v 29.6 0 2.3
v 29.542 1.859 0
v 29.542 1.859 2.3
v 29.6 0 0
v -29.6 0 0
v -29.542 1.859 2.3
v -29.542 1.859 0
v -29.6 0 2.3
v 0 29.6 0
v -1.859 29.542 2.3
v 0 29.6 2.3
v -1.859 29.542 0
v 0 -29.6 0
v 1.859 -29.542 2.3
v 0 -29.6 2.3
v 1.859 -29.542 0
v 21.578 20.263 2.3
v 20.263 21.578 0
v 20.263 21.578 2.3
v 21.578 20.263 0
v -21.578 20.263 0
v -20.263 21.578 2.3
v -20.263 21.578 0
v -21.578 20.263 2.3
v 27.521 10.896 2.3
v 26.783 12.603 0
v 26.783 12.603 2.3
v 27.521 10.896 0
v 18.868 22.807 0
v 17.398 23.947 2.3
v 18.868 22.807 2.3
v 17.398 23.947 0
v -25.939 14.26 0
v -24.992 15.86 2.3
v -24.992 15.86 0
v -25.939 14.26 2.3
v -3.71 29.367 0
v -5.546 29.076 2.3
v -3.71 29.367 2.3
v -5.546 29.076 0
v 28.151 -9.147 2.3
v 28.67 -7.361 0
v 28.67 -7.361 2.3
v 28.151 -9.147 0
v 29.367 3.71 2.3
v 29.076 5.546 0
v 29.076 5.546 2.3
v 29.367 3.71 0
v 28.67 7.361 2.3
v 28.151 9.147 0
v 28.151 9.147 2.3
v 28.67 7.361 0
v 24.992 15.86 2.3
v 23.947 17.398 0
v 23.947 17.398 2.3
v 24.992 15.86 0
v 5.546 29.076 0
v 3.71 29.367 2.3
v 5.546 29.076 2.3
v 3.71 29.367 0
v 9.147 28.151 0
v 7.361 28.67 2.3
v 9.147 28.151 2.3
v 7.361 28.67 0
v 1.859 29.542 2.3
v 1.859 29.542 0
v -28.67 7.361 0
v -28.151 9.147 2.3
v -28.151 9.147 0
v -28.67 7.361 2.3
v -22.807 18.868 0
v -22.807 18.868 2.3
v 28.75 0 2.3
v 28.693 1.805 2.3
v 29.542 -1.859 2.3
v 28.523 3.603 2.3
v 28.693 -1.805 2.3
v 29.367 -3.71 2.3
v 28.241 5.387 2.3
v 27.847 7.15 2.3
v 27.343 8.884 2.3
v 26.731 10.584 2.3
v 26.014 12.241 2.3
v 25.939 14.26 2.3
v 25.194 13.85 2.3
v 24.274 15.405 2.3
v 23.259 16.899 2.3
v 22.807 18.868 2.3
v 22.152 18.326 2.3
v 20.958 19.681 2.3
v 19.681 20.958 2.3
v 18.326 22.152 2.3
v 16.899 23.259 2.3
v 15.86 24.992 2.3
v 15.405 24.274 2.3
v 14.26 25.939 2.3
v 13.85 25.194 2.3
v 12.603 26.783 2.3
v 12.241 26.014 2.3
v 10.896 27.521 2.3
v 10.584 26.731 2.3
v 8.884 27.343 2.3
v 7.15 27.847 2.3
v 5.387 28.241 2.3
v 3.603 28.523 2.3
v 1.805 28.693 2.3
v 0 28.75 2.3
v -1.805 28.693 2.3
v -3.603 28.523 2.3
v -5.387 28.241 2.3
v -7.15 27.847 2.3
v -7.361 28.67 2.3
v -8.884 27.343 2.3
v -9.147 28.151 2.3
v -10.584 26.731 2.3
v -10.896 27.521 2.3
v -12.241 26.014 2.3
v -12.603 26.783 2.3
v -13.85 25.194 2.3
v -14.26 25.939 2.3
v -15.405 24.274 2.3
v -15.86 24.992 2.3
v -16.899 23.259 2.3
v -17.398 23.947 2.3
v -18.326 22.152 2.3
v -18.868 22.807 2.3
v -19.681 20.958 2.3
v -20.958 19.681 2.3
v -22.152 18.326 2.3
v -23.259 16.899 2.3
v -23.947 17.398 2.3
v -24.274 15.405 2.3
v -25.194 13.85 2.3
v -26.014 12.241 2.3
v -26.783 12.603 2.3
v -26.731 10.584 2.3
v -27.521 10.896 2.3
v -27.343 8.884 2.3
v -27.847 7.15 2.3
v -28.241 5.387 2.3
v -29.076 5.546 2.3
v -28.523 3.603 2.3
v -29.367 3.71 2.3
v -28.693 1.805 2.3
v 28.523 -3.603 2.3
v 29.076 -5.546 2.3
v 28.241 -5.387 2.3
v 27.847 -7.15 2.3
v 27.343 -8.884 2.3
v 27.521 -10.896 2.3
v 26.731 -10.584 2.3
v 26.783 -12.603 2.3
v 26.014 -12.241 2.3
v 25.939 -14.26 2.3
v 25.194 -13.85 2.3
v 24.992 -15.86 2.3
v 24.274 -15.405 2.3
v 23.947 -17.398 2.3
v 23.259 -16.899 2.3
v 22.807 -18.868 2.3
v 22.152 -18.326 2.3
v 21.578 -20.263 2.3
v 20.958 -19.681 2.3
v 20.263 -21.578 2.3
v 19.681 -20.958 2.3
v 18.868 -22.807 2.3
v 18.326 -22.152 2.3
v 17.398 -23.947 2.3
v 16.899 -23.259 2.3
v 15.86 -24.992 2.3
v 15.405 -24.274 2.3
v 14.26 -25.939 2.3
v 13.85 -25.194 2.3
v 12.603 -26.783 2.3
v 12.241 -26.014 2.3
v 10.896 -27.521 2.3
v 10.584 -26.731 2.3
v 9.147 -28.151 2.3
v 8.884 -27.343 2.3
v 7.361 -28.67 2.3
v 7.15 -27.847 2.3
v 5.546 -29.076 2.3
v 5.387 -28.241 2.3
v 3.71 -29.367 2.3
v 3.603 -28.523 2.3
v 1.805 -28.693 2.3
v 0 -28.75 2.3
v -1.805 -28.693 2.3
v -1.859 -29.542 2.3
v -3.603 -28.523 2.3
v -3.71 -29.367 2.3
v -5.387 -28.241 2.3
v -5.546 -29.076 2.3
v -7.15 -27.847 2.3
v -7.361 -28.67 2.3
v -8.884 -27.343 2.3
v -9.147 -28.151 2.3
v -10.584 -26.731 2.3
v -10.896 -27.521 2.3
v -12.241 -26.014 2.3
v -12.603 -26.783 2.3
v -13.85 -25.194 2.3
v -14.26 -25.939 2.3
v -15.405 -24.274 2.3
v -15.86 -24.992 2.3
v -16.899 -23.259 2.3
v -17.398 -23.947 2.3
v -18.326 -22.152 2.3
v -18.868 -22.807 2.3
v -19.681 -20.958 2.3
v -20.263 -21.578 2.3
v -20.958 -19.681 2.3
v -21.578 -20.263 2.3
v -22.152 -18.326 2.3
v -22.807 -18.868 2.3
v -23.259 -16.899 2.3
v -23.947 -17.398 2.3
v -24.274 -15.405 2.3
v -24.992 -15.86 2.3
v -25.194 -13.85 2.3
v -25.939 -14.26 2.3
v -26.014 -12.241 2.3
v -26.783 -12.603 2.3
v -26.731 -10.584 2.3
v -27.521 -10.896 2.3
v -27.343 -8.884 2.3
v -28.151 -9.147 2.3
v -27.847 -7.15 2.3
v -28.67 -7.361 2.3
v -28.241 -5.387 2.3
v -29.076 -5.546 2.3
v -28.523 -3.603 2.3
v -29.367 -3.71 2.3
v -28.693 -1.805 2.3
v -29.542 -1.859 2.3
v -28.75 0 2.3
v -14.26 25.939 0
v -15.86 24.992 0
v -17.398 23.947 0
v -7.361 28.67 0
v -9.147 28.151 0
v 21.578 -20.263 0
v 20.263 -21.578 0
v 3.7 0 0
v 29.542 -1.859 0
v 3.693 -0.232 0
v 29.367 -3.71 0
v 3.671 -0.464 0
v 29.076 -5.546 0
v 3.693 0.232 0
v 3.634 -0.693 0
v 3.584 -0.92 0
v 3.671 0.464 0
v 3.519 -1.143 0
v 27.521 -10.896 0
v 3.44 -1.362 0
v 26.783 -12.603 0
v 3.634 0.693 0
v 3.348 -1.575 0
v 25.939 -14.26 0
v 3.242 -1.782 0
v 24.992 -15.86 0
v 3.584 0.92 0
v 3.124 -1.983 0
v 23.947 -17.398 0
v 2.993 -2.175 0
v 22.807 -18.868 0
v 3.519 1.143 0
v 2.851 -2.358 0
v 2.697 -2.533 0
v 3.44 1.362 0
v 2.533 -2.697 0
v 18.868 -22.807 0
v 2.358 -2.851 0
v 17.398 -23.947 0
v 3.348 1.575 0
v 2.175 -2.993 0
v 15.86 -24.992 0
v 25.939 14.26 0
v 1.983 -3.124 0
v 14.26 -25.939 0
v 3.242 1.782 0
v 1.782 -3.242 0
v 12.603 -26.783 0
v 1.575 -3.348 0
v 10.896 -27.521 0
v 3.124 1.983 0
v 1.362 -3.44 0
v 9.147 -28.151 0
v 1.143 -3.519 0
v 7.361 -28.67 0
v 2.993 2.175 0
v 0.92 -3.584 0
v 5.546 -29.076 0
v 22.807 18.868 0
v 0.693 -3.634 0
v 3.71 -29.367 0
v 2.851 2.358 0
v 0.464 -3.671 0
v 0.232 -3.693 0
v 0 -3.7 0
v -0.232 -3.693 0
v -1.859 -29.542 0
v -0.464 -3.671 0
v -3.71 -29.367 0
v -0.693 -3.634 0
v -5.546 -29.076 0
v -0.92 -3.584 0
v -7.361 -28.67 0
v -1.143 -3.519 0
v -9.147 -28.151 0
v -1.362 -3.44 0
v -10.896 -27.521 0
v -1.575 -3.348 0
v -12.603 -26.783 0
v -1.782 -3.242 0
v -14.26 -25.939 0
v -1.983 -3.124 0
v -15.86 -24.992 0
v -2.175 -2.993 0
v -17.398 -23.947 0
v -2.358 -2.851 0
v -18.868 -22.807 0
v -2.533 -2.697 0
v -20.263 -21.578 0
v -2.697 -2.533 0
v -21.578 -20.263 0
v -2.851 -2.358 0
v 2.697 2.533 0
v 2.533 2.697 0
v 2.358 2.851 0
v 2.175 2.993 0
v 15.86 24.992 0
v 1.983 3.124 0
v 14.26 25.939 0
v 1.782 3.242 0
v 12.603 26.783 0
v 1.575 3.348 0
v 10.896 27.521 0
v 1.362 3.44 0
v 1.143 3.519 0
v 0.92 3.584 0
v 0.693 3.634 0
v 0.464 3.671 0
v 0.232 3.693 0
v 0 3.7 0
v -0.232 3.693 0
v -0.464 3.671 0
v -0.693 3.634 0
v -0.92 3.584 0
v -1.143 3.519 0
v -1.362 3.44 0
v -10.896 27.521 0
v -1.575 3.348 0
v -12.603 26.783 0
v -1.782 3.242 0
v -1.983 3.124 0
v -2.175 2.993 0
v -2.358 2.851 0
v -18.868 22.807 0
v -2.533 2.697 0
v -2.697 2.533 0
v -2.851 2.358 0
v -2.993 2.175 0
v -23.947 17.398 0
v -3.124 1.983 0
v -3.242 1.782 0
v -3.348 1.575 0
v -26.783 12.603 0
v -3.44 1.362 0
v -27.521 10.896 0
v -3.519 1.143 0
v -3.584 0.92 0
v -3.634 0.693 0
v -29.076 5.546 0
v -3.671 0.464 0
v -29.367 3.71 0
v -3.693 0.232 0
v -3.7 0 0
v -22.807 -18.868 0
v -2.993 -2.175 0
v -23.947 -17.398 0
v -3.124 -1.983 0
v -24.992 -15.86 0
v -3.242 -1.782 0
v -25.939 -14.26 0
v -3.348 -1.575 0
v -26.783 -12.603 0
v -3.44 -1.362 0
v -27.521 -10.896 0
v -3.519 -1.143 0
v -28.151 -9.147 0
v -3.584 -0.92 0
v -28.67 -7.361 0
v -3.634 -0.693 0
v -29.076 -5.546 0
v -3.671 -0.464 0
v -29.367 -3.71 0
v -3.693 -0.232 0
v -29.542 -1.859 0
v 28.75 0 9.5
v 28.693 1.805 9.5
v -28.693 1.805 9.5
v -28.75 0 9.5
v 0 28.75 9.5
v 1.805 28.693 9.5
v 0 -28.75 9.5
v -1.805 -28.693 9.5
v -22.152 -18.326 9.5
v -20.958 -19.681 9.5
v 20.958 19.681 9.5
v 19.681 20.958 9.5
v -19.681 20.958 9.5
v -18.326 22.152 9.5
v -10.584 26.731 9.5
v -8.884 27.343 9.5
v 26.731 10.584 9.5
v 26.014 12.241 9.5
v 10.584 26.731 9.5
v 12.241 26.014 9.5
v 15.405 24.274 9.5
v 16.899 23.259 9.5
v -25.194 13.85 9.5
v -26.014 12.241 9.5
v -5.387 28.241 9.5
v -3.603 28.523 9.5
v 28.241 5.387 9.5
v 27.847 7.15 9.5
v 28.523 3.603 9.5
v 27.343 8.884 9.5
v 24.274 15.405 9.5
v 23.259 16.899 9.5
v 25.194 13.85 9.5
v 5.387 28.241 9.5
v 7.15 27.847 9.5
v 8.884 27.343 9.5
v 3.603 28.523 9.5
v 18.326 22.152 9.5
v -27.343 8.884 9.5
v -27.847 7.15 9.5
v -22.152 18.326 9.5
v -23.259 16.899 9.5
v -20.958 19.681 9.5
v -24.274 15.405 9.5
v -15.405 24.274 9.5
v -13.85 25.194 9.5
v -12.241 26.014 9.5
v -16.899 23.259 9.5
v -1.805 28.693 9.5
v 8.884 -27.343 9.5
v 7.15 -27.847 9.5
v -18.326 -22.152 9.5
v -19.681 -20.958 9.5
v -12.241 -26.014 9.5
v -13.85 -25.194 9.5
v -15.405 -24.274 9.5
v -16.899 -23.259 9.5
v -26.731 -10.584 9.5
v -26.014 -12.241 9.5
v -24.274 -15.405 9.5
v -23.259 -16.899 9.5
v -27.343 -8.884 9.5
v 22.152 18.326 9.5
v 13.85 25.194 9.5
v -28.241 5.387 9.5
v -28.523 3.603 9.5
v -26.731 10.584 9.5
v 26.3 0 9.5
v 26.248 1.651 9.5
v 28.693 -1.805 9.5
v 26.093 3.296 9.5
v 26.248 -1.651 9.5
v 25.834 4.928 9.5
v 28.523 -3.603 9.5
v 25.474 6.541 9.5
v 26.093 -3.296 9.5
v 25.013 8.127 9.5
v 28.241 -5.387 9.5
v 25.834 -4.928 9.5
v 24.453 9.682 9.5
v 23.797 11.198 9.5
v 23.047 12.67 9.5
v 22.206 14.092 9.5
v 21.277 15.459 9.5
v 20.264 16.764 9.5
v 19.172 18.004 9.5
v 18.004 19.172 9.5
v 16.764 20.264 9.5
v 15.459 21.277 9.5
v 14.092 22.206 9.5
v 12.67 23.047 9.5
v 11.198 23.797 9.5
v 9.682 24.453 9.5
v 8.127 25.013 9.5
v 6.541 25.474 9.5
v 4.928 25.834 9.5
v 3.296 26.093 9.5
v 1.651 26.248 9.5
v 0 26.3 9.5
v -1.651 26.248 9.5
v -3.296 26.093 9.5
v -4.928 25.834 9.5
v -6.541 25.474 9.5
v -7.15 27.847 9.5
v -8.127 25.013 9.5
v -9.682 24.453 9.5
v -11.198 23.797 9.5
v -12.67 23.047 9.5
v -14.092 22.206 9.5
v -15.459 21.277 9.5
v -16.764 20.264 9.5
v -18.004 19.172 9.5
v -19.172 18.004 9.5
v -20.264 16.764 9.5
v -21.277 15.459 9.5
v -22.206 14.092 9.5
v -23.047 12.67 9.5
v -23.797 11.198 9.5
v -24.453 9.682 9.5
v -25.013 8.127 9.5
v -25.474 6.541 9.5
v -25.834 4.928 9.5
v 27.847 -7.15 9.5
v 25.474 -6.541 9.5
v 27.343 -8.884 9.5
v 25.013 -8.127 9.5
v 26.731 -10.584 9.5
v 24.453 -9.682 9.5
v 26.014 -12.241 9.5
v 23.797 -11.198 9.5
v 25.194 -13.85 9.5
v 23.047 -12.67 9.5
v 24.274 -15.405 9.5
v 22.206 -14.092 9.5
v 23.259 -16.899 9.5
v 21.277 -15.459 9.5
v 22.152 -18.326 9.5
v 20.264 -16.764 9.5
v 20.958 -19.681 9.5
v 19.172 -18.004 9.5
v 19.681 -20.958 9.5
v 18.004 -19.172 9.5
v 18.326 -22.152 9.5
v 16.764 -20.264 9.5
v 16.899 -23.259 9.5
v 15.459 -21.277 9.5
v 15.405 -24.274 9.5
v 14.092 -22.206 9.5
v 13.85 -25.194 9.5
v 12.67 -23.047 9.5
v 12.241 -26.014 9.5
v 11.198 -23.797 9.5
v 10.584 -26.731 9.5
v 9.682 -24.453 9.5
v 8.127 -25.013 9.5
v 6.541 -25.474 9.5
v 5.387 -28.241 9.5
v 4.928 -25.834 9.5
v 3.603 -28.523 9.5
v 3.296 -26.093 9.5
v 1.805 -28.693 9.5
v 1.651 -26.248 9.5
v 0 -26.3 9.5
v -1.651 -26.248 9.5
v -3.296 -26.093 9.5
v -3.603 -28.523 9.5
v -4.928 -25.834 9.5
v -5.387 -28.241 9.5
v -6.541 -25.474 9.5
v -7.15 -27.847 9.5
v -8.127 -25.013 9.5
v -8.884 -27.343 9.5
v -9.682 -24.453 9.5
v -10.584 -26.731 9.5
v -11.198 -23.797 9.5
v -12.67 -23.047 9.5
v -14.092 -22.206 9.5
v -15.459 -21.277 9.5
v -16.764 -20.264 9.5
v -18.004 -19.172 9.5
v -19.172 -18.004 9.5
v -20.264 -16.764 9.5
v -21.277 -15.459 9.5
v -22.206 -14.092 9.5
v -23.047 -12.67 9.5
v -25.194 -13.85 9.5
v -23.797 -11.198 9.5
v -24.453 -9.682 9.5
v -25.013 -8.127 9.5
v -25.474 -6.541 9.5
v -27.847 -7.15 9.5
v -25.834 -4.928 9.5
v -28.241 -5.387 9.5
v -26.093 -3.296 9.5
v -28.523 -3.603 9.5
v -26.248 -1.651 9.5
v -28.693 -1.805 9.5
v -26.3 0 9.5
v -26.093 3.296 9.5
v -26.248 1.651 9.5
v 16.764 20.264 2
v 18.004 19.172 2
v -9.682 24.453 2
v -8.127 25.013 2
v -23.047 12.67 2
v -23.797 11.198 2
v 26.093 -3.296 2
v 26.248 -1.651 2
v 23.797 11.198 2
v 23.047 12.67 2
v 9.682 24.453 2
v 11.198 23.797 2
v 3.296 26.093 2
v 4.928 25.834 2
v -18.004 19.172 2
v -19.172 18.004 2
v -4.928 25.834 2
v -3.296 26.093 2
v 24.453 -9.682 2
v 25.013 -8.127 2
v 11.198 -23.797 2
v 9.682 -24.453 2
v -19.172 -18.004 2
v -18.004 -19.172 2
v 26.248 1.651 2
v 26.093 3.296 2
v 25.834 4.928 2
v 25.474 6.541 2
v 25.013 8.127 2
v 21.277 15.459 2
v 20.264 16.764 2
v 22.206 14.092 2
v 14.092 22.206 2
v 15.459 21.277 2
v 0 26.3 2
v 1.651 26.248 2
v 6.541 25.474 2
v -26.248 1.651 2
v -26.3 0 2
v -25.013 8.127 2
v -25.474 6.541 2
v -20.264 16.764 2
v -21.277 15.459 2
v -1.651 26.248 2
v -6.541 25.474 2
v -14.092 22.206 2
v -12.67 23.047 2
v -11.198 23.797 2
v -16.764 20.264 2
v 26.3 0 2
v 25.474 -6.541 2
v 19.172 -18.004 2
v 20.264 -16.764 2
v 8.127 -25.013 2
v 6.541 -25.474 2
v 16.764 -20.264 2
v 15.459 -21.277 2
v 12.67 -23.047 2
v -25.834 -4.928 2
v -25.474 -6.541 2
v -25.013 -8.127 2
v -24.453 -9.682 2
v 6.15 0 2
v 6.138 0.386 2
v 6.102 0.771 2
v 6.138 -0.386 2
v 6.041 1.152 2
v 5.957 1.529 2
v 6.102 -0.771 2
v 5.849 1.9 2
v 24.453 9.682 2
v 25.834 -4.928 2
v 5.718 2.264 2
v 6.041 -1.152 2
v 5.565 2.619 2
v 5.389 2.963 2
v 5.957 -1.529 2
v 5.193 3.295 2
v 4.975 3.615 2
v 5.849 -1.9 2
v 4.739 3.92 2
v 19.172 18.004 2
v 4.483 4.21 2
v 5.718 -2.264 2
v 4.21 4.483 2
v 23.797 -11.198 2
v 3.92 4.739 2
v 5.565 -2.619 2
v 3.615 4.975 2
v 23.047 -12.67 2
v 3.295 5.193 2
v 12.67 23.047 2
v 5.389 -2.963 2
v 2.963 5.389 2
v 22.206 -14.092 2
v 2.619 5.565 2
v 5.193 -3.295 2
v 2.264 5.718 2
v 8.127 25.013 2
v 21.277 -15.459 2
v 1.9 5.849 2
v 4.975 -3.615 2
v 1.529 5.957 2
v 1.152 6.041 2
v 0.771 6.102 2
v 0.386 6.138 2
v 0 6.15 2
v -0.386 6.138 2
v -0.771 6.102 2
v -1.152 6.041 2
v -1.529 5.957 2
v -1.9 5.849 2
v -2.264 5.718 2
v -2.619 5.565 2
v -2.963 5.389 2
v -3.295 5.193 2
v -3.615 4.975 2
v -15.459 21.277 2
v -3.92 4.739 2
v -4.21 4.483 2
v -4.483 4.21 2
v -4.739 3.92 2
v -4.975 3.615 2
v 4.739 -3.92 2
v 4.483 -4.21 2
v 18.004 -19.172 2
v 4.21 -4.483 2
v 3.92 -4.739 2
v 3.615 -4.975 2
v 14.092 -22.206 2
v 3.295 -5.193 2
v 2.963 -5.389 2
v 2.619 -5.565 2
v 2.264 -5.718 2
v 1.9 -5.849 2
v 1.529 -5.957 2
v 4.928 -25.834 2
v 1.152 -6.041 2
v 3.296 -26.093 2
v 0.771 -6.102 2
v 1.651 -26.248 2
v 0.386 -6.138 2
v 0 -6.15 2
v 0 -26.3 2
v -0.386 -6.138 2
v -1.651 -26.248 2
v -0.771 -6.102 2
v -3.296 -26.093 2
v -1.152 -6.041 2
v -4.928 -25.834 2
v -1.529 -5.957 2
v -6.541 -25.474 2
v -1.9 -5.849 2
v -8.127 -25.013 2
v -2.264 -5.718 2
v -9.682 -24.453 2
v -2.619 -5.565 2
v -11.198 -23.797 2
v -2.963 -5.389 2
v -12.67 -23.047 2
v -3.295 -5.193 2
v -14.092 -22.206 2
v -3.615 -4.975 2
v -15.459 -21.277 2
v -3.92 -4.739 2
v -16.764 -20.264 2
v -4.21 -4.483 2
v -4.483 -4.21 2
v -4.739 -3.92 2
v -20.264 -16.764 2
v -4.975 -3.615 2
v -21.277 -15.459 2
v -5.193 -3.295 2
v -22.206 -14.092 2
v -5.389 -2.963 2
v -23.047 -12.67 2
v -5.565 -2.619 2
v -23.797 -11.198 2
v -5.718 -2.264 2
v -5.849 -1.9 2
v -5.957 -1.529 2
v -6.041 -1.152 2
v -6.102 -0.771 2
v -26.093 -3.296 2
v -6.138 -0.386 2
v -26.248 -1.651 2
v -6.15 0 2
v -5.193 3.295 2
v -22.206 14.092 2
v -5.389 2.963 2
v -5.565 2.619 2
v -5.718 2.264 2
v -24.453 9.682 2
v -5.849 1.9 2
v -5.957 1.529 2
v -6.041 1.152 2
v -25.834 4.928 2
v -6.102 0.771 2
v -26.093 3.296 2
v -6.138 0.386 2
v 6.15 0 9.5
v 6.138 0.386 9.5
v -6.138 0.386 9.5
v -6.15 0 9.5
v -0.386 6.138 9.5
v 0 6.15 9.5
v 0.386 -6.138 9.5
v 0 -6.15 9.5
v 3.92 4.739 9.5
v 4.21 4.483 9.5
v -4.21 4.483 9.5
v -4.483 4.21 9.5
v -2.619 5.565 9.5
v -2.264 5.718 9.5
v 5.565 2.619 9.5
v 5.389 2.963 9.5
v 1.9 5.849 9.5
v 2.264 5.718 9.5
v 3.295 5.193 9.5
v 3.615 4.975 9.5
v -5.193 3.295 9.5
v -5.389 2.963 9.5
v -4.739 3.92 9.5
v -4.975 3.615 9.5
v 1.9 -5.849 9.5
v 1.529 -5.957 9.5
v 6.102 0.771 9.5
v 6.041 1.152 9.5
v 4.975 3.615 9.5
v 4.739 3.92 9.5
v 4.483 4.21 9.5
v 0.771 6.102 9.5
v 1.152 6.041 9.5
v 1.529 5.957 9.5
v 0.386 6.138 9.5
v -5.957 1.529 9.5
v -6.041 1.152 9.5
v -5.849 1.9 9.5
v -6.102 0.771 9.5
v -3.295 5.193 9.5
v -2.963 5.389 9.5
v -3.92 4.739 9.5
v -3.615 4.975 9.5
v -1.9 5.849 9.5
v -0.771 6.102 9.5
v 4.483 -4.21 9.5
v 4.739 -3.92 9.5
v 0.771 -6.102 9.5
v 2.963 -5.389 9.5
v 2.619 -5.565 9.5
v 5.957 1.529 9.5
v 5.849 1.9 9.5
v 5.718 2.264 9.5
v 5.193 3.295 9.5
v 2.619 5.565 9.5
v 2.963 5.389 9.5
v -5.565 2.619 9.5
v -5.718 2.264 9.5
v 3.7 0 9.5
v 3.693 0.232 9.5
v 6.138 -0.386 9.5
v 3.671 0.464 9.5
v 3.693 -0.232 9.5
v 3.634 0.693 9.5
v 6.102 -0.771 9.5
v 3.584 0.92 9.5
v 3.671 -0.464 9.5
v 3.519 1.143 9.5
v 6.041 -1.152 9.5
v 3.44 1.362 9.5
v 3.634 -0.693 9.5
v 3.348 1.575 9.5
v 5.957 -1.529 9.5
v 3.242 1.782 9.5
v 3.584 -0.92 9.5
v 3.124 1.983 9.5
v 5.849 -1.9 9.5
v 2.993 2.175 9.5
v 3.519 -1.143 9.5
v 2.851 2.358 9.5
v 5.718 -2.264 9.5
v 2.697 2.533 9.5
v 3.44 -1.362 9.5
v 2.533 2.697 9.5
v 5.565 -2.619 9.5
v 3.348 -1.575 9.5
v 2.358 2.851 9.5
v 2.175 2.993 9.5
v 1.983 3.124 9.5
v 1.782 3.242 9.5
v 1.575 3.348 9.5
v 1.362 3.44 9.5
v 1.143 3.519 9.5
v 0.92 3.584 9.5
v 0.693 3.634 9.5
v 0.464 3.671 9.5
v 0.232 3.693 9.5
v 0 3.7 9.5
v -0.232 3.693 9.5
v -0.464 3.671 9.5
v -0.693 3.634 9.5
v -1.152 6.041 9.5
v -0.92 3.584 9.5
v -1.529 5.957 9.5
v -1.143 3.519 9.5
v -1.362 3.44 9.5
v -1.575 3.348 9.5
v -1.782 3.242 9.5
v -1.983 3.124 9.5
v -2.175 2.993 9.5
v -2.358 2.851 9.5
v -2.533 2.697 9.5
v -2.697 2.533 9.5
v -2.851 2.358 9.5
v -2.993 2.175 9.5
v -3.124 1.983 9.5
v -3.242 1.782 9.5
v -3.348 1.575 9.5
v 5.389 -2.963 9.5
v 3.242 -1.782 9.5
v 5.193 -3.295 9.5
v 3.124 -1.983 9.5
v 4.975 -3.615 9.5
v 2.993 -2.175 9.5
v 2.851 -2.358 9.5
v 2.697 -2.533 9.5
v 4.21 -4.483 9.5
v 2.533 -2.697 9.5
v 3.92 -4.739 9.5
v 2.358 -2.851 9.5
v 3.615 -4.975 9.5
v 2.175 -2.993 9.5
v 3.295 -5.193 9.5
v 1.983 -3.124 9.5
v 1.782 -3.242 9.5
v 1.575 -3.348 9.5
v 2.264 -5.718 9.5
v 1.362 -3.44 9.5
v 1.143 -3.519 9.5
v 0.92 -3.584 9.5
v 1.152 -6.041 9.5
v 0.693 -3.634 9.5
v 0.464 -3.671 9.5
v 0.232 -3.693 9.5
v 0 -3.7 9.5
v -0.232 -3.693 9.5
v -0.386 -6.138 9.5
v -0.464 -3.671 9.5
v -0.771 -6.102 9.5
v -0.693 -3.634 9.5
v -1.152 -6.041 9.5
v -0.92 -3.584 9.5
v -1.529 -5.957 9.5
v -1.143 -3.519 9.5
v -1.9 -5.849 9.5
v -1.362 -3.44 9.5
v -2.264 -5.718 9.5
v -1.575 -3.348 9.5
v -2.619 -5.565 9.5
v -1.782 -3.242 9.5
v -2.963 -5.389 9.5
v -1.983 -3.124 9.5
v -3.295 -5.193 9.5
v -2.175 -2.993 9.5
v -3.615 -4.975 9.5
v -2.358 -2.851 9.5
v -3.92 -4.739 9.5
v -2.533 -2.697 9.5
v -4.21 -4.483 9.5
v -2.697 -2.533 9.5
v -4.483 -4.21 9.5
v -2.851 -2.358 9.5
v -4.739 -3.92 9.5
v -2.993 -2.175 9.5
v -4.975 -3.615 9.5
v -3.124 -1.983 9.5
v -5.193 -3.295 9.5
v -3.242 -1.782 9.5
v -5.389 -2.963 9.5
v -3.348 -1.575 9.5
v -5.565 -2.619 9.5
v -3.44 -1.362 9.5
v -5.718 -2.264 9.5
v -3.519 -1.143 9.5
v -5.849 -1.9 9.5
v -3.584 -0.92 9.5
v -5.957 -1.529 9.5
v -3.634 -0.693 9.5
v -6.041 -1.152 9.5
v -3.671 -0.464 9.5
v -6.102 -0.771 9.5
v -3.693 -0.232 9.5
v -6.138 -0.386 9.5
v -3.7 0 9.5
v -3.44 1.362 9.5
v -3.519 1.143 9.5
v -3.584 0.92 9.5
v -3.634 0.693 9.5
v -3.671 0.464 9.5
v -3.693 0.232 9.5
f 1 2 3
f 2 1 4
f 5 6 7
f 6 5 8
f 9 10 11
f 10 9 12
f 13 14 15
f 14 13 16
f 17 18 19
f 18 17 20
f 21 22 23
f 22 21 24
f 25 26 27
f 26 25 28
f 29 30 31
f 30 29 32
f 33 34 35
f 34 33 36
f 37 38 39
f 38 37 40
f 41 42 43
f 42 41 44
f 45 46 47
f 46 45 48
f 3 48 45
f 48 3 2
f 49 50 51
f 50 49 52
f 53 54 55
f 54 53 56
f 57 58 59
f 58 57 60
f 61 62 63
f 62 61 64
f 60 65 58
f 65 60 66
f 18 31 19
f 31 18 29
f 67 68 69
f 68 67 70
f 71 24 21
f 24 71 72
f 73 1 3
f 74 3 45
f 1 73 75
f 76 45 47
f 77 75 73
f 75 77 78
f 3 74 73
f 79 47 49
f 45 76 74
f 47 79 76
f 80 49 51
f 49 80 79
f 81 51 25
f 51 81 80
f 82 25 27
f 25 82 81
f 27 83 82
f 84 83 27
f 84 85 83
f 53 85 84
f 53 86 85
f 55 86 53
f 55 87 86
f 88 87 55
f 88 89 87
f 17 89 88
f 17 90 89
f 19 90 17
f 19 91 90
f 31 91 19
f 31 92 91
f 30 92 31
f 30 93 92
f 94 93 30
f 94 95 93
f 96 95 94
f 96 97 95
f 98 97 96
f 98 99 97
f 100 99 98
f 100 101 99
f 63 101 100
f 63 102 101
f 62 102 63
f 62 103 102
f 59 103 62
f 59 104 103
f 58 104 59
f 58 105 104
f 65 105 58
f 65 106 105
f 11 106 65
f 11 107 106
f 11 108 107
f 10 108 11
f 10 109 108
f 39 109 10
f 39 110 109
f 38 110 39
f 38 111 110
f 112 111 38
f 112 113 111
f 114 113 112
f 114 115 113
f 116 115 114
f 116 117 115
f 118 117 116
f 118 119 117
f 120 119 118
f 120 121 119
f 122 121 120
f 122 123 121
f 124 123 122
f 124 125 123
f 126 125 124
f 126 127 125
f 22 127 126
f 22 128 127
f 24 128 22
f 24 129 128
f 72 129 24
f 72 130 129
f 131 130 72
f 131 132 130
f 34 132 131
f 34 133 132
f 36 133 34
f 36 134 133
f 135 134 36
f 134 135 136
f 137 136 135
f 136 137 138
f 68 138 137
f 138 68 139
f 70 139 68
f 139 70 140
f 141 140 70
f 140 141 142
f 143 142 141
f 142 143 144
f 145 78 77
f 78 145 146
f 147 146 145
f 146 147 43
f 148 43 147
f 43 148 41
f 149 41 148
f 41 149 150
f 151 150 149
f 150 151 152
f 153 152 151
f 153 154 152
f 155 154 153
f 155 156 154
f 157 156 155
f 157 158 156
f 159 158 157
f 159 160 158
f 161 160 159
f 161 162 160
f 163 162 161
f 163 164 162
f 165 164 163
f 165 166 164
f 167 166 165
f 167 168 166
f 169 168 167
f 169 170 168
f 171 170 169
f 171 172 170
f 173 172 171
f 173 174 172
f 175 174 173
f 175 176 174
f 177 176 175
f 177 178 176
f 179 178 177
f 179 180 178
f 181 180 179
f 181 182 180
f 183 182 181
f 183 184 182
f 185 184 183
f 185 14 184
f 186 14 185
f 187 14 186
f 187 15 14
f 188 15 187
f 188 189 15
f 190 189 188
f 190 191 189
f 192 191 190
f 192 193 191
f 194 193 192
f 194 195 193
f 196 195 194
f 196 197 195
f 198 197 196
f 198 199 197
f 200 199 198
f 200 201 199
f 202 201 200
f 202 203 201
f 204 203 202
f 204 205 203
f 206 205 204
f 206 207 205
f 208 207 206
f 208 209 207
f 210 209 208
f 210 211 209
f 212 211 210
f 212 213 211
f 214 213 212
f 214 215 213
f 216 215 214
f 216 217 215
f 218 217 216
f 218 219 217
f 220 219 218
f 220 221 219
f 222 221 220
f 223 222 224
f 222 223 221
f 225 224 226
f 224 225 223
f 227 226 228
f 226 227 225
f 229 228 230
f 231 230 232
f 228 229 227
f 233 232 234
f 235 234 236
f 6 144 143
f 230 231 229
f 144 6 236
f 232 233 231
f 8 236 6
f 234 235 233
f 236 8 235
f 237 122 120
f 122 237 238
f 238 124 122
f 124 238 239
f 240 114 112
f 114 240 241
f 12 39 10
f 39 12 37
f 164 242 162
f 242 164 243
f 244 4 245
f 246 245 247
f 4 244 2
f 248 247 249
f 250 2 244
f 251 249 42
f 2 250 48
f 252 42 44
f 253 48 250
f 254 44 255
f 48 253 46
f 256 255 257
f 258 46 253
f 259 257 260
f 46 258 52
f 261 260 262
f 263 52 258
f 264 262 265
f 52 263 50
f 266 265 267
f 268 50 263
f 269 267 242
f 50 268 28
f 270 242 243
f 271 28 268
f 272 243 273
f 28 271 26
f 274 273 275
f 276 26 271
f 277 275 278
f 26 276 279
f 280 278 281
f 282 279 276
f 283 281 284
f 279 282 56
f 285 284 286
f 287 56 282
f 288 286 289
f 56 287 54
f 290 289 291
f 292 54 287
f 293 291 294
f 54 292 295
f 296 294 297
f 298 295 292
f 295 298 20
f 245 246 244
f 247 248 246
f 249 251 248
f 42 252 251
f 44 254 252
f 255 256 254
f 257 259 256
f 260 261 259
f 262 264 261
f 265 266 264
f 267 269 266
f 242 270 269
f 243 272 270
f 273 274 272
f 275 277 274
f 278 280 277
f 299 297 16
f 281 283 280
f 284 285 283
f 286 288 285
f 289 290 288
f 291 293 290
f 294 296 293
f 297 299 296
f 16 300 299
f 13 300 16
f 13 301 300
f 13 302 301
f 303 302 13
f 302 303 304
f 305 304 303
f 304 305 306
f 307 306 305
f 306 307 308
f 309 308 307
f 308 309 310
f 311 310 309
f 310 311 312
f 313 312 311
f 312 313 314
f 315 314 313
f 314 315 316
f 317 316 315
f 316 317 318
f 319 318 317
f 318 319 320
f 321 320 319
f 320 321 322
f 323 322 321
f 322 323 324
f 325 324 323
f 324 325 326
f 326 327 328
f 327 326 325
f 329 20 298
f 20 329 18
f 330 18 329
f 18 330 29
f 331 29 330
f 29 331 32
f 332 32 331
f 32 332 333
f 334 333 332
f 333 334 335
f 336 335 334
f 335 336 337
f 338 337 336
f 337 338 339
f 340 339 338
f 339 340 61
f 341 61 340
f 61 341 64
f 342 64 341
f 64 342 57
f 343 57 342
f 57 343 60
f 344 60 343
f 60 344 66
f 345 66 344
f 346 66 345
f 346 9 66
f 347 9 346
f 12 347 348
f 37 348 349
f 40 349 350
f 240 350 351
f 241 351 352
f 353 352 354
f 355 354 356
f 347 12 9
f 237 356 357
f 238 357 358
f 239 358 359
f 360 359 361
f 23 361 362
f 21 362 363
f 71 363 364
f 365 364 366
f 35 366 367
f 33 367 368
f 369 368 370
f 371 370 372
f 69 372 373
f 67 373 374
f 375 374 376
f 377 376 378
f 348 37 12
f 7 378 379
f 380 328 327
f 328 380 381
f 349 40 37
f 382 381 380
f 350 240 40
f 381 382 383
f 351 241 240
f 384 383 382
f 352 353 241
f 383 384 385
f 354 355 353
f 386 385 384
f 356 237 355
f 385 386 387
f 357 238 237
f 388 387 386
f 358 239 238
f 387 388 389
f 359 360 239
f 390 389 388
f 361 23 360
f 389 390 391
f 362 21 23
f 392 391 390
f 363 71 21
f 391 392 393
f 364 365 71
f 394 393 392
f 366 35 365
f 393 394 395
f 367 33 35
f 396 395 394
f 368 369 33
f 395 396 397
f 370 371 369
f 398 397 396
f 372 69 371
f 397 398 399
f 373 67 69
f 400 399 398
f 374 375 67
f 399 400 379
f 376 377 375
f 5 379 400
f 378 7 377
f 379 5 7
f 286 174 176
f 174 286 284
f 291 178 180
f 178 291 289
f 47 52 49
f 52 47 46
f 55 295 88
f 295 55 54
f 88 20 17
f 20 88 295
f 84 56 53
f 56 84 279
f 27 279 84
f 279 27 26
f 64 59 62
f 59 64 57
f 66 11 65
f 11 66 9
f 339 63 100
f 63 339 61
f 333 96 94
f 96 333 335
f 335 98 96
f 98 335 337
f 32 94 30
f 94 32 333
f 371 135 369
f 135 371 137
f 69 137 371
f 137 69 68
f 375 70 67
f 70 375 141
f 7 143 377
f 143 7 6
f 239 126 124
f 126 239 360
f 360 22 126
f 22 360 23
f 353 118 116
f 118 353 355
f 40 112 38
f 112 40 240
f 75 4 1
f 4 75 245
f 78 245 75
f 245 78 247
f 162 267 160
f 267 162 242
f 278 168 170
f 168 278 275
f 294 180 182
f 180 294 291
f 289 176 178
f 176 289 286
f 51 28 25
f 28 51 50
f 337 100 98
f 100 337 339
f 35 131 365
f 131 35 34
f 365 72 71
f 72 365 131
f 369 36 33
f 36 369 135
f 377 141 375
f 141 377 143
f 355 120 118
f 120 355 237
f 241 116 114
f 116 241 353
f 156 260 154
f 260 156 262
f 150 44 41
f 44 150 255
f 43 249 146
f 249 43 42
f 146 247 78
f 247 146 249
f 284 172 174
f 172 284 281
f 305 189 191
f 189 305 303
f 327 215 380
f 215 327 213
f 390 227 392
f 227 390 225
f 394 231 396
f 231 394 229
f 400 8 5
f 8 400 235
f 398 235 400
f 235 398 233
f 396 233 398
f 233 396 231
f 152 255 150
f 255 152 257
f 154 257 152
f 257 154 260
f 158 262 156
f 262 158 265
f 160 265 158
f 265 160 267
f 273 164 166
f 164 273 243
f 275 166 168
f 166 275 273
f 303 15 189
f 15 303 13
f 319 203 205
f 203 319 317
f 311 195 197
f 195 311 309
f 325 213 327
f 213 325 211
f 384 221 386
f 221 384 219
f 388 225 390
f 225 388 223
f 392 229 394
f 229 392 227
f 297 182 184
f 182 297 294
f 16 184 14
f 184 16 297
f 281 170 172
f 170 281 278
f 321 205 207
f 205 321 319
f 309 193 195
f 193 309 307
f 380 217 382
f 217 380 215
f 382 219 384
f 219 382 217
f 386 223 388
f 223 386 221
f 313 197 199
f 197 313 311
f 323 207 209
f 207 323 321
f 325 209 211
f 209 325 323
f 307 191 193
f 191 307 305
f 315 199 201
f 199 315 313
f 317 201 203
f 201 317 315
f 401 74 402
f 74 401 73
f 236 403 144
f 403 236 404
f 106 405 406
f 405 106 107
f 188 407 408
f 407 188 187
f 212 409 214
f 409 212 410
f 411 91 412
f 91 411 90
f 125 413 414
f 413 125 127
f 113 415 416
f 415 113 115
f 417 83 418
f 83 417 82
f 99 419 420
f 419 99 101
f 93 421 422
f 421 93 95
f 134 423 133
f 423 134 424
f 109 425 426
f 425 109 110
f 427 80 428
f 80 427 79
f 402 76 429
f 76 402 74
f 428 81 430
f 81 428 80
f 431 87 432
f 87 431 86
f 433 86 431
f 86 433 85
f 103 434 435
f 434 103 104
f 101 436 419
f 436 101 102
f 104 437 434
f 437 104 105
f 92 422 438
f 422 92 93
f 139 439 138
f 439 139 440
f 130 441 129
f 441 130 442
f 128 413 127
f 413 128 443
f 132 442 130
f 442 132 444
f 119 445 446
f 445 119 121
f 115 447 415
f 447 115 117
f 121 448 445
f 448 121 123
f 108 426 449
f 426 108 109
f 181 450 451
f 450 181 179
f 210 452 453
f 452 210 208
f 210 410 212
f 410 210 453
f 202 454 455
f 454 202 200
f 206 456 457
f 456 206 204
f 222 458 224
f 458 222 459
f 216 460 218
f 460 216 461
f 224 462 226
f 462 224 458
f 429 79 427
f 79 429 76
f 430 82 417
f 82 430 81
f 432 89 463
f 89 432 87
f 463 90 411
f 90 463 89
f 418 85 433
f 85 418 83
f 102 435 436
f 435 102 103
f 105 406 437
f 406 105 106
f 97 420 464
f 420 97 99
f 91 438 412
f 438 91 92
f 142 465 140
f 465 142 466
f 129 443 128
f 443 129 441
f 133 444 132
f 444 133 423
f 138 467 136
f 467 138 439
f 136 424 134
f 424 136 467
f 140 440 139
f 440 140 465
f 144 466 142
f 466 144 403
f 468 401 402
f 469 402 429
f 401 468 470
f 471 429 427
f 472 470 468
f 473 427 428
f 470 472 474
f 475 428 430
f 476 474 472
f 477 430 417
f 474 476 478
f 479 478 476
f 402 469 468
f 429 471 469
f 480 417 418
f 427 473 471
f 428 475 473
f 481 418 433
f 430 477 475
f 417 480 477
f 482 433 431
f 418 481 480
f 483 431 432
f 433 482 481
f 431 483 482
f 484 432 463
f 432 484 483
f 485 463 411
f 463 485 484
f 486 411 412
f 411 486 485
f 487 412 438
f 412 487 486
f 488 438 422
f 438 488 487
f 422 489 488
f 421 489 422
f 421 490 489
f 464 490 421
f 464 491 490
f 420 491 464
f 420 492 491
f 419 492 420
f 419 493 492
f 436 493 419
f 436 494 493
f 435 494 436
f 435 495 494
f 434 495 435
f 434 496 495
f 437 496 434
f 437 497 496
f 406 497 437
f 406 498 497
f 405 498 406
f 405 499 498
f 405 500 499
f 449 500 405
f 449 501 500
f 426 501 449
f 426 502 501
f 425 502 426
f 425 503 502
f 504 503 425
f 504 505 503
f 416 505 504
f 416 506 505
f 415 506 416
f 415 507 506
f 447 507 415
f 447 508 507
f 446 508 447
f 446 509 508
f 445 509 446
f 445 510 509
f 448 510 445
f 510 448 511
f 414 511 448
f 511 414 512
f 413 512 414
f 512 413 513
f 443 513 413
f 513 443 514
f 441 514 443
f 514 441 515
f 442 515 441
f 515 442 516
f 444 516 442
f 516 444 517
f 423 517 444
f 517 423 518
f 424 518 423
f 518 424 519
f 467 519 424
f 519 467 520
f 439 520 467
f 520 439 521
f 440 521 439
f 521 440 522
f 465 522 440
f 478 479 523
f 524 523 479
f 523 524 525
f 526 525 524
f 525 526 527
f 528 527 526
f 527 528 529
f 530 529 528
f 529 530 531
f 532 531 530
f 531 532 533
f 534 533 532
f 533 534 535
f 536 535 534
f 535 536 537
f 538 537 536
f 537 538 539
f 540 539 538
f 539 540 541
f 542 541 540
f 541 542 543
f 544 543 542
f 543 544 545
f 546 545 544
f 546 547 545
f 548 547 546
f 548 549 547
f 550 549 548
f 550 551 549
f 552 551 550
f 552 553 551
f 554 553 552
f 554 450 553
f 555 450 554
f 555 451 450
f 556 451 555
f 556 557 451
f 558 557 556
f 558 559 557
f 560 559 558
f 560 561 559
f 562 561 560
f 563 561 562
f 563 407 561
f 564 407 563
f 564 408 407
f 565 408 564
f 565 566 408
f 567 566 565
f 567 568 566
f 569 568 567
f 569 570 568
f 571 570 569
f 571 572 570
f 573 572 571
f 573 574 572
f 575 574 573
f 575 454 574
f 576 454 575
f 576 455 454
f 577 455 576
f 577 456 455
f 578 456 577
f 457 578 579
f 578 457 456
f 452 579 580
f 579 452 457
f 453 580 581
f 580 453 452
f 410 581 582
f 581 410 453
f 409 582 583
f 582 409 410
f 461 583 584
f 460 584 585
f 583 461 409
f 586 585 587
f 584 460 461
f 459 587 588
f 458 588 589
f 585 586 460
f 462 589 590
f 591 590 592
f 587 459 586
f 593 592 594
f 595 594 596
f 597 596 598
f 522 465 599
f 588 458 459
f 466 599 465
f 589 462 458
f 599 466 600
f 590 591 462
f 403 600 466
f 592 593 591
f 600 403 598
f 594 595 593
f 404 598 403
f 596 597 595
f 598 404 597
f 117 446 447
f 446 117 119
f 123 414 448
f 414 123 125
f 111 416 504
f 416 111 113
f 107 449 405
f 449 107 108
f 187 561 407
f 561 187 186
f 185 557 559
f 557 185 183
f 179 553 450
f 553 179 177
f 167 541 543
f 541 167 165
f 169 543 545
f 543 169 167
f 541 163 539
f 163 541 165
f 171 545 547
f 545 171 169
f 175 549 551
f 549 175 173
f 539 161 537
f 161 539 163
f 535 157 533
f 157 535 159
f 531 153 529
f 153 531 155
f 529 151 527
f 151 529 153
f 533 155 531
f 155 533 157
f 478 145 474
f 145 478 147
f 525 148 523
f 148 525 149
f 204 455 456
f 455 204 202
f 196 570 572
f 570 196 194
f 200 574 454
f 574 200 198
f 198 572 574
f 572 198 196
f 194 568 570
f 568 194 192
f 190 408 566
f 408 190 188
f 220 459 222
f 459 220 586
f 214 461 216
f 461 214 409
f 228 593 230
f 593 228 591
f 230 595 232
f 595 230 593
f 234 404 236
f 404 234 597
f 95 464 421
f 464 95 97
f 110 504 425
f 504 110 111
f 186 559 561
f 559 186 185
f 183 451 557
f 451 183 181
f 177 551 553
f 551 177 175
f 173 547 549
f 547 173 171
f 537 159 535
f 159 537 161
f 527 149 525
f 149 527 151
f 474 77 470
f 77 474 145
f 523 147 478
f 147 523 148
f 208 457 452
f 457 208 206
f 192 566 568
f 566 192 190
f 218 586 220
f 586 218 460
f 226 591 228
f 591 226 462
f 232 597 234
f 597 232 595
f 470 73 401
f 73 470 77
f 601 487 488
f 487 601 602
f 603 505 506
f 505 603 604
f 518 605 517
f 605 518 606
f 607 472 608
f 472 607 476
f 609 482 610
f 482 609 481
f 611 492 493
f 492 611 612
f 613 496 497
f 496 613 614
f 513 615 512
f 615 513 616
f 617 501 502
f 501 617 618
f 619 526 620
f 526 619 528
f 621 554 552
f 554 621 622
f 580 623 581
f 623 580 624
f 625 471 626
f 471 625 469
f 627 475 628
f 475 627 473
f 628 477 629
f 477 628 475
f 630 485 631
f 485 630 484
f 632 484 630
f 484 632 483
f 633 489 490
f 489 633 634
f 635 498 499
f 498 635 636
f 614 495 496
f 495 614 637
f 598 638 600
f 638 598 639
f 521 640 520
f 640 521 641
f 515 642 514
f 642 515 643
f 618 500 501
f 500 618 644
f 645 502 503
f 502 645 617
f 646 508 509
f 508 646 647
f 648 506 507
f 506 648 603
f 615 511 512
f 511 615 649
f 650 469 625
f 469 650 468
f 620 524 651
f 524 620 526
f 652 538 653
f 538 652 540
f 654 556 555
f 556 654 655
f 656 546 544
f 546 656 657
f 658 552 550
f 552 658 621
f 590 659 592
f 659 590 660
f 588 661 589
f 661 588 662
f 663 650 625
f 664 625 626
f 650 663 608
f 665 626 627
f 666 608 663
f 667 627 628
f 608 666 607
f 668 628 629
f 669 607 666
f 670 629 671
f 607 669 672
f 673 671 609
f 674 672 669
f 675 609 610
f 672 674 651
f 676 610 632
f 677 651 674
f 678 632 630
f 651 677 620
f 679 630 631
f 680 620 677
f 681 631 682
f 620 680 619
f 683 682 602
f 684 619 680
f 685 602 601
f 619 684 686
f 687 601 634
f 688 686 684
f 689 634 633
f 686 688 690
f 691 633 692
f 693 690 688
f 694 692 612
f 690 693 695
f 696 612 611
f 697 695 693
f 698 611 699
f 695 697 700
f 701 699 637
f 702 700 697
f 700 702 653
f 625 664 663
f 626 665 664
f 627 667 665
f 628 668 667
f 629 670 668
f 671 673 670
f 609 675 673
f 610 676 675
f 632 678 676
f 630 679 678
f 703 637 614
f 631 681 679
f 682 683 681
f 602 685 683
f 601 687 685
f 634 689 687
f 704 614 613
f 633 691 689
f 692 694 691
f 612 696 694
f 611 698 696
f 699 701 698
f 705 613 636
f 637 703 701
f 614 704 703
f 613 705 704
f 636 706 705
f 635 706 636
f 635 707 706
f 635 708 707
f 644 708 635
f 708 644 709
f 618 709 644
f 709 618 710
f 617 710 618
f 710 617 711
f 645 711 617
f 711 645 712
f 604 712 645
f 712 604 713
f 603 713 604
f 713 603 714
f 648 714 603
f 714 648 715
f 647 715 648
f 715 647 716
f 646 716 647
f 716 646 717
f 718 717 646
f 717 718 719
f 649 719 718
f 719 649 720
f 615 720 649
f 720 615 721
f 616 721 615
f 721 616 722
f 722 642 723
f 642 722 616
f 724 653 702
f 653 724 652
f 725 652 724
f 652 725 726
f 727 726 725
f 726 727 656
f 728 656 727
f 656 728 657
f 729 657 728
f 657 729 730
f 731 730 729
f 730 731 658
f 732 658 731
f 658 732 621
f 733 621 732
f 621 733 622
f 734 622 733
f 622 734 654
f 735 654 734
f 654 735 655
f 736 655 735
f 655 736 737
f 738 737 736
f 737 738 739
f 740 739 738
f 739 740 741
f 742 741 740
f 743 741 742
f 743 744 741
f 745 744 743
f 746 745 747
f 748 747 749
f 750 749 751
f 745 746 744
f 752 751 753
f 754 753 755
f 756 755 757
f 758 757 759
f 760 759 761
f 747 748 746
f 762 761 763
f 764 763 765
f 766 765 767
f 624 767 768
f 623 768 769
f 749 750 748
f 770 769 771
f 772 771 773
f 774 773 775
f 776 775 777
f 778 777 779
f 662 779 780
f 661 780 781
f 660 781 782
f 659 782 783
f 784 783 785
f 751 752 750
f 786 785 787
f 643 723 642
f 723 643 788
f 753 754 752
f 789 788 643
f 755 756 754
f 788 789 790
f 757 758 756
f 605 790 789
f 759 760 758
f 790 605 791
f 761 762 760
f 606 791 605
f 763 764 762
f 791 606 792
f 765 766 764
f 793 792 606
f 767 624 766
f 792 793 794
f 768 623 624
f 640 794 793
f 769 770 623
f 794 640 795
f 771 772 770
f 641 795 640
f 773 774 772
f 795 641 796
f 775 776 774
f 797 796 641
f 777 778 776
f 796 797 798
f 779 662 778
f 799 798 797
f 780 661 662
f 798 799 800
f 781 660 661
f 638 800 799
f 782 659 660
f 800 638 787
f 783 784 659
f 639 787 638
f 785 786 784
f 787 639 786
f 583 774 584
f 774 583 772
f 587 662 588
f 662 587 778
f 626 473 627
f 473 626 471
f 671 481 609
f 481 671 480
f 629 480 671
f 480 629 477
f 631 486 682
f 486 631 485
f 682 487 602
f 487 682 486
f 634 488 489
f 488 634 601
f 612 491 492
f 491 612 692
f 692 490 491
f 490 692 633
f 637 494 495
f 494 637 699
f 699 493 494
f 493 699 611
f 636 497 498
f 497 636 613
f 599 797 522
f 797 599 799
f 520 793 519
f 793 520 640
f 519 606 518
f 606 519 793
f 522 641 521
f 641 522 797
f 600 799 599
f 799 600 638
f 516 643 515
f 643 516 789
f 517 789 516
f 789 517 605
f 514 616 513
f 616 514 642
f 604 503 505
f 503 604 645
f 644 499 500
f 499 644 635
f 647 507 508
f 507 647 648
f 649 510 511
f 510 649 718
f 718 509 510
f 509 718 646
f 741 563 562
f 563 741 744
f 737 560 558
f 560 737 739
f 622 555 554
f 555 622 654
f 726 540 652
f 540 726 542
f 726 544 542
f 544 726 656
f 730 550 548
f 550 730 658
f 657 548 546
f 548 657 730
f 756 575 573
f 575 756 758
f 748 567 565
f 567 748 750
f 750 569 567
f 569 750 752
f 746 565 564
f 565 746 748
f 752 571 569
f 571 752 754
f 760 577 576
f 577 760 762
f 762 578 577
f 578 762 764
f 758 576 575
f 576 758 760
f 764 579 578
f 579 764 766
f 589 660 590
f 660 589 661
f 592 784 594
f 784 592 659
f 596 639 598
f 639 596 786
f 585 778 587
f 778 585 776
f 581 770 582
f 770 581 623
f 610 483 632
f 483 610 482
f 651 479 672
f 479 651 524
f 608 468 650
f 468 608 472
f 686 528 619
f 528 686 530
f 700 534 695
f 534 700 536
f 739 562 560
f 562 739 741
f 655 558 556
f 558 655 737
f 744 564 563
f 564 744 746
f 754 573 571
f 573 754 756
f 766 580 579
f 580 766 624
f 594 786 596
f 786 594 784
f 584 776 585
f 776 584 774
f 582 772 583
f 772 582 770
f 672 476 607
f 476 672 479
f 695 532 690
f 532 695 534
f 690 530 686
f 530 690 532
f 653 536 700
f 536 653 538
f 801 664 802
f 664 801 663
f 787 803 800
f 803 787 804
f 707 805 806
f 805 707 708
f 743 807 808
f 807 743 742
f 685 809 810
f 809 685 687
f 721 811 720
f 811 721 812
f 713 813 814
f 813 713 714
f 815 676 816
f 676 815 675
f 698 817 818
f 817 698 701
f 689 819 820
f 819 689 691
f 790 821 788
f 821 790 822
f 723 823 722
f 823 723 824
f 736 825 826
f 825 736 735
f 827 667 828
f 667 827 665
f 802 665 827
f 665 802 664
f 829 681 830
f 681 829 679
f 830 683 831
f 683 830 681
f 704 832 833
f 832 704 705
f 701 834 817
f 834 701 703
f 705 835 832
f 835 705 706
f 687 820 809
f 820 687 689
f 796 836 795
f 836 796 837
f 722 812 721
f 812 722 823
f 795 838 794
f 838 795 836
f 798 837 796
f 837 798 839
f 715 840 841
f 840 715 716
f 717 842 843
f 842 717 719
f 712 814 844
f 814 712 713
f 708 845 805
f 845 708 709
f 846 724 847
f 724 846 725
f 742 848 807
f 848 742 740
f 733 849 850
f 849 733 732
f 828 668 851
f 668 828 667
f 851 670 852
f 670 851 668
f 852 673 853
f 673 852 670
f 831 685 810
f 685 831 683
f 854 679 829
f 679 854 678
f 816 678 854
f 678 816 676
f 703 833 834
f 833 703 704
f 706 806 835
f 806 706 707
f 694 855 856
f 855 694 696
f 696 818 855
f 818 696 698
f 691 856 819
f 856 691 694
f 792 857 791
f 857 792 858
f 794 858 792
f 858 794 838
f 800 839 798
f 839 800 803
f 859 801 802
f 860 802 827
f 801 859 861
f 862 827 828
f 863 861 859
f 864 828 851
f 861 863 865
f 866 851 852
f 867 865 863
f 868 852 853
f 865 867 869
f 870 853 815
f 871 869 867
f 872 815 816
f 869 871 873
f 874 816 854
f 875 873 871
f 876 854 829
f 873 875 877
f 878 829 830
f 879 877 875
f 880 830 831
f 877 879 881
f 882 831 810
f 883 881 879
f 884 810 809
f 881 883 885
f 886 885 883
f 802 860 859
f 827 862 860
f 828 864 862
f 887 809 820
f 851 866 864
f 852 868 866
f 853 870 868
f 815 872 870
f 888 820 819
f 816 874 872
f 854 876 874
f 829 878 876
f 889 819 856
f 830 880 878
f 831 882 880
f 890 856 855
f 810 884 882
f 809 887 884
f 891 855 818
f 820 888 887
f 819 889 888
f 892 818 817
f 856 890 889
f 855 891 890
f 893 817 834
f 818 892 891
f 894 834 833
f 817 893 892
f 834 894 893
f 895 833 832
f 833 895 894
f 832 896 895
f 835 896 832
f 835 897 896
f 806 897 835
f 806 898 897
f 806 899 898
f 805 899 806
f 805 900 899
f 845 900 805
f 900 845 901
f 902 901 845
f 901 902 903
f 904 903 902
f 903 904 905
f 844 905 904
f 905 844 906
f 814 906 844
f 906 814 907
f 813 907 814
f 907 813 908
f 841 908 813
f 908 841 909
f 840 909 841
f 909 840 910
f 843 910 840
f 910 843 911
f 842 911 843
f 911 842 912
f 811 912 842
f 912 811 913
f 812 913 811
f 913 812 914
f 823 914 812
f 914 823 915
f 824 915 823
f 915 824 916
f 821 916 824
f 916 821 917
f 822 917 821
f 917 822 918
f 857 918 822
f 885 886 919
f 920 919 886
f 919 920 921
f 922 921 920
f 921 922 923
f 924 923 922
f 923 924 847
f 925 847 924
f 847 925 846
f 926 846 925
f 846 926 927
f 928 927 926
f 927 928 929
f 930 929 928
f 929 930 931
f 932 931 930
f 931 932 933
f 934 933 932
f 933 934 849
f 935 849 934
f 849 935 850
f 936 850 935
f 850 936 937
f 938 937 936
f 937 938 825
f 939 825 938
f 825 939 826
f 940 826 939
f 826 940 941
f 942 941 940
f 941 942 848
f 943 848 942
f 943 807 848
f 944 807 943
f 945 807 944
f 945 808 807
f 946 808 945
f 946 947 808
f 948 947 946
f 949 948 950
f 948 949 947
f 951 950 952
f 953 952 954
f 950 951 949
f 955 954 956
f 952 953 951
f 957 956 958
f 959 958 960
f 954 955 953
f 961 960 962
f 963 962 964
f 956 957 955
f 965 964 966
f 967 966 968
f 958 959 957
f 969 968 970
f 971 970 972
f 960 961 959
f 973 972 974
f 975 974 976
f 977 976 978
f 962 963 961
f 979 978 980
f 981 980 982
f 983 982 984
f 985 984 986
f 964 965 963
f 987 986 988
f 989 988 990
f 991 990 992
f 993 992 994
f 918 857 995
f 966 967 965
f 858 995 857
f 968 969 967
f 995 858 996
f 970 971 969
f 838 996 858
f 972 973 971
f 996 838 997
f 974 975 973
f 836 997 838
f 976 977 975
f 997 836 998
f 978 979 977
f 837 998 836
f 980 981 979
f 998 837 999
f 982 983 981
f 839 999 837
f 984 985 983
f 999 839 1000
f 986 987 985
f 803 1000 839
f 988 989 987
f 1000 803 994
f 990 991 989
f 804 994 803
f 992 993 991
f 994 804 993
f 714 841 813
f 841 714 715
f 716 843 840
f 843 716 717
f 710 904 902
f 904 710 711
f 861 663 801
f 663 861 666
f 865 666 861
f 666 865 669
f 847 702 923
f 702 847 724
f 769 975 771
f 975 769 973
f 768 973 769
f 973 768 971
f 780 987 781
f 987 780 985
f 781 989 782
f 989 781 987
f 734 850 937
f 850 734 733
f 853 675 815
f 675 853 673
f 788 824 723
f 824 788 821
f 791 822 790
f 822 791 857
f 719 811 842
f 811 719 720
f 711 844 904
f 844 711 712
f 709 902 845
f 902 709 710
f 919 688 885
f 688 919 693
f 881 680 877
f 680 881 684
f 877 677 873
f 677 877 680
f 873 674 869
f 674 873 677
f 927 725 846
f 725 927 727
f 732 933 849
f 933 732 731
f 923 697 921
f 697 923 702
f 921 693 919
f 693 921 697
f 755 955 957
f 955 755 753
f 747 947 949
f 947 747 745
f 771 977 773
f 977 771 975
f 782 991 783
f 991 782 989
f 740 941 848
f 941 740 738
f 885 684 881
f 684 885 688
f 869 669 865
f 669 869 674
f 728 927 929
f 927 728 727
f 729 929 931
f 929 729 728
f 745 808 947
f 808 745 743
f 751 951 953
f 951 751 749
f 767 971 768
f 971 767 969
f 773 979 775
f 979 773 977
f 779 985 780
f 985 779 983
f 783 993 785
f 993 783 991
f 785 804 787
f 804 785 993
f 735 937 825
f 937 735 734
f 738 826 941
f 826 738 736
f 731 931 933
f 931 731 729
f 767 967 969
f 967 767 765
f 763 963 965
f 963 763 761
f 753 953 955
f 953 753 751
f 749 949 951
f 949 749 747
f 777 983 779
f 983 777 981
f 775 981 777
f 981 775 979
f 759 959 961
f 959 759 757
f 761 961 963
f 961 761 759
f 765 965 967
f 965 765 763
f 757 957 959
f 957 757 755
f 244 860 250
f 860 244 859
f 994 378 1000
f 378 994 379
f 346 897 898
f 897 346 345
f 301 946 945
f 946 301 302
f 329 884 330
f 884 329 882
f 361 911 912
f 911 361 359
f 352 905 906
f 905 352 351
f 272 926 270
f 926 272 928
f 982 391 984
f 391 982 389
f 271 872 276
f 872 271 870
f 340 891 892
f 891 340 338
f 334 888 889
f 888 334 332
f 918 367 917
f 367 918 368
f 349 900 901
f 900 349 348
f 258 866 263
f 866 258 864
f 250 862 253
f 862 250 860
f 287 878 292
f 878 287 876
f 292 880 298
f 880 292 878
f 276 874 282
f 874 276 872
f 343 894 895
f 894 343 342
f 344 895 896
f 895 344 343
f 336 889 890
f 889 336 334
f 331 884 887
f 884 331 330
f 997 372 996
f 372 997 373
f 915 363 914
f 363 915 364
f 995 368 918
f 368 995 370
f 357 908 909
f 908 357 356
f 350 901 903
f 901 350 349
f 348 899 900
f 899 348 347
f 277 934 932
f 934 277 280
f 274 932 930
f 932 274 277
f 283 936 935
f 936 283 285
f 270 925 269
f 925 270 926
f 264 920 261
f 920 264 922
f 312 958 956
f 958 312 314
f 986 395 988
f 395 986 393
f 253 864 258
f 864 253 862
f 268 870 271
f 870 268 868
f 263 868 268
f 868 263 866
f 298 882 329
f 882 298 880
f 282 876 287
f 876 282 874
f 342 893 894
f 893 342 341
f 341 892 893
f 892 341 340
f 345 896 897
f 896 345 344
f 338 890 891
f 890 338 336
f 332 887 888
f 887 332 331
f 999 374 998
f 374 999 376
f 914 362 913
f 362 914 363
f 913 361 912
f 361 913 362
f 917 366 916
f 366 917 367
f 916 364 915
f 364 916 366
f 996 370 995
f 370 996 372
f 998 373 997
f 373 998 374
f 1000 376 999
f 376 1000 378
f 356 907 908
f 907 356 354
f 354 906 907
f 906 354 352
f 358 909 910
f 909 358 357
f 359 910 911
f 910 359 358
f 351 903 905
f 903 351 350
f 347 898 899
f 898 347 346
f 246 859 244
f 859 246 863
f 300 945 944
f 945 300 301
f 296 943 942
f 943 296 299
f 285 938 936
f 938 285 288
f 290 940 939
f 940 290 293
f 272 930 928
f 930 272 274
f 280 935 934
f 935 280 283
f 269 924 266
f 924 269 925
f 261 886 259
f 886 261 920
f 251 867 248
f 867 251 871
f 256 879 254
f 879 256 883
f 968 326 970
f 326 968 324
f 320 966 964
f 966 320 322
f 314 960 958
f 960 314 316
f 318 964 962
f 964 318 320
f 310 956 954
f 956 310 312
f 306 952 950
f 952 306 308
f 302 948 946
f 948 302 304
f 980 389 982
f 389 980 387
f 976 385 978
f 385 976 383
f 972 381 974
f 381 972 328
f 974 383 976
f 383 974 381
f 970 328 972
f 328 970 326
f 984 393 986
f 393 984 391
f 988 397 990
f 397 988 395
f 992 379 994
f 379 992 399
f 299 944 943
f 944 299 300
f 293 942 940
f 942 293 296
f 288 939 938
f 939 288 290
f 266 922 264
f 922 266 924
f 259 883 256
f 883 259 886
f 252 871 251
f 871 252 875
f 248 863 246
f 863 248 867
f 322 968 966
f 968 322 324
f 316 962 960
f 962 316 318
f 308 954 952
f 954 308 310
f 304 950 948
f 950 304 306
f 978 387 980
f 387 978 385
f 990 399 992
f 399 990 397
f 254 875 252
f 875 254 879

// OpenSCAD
$fn = 100;

height = 9.5;

inner_radius = 12.3 / 2;
inner_thickness = (12.3 - 7.4) / 2.0;
inner_height = height;


outer_radius = 59.2 / 2;
outer_height = 2.3;
outer_lesser_radius = 57.5 / 2;
outer_lesser_height = height;
outer_thickness = inner_thickness;

difference() {

    union() {
        difference() {
            union() {
                cylinder(r = outer_radius, h = outer_height);
                cylinder(r = outer_lesser_radius, h = outer_lesser_height);
            }

            translate([0, 0, 2]) cylinder(r = outer_lesser_radius - outer_thickness, h = outer_lesser_height);
        }
        union() {
            cylinder(r = inner_radius, h = inner_height);
            cylinder(r = inner_radius, h = inner_height);
        }
    }
    translate([0, 0, -1]) cylinder(r = inner_radius - inner_thickness, h = 100);
}
